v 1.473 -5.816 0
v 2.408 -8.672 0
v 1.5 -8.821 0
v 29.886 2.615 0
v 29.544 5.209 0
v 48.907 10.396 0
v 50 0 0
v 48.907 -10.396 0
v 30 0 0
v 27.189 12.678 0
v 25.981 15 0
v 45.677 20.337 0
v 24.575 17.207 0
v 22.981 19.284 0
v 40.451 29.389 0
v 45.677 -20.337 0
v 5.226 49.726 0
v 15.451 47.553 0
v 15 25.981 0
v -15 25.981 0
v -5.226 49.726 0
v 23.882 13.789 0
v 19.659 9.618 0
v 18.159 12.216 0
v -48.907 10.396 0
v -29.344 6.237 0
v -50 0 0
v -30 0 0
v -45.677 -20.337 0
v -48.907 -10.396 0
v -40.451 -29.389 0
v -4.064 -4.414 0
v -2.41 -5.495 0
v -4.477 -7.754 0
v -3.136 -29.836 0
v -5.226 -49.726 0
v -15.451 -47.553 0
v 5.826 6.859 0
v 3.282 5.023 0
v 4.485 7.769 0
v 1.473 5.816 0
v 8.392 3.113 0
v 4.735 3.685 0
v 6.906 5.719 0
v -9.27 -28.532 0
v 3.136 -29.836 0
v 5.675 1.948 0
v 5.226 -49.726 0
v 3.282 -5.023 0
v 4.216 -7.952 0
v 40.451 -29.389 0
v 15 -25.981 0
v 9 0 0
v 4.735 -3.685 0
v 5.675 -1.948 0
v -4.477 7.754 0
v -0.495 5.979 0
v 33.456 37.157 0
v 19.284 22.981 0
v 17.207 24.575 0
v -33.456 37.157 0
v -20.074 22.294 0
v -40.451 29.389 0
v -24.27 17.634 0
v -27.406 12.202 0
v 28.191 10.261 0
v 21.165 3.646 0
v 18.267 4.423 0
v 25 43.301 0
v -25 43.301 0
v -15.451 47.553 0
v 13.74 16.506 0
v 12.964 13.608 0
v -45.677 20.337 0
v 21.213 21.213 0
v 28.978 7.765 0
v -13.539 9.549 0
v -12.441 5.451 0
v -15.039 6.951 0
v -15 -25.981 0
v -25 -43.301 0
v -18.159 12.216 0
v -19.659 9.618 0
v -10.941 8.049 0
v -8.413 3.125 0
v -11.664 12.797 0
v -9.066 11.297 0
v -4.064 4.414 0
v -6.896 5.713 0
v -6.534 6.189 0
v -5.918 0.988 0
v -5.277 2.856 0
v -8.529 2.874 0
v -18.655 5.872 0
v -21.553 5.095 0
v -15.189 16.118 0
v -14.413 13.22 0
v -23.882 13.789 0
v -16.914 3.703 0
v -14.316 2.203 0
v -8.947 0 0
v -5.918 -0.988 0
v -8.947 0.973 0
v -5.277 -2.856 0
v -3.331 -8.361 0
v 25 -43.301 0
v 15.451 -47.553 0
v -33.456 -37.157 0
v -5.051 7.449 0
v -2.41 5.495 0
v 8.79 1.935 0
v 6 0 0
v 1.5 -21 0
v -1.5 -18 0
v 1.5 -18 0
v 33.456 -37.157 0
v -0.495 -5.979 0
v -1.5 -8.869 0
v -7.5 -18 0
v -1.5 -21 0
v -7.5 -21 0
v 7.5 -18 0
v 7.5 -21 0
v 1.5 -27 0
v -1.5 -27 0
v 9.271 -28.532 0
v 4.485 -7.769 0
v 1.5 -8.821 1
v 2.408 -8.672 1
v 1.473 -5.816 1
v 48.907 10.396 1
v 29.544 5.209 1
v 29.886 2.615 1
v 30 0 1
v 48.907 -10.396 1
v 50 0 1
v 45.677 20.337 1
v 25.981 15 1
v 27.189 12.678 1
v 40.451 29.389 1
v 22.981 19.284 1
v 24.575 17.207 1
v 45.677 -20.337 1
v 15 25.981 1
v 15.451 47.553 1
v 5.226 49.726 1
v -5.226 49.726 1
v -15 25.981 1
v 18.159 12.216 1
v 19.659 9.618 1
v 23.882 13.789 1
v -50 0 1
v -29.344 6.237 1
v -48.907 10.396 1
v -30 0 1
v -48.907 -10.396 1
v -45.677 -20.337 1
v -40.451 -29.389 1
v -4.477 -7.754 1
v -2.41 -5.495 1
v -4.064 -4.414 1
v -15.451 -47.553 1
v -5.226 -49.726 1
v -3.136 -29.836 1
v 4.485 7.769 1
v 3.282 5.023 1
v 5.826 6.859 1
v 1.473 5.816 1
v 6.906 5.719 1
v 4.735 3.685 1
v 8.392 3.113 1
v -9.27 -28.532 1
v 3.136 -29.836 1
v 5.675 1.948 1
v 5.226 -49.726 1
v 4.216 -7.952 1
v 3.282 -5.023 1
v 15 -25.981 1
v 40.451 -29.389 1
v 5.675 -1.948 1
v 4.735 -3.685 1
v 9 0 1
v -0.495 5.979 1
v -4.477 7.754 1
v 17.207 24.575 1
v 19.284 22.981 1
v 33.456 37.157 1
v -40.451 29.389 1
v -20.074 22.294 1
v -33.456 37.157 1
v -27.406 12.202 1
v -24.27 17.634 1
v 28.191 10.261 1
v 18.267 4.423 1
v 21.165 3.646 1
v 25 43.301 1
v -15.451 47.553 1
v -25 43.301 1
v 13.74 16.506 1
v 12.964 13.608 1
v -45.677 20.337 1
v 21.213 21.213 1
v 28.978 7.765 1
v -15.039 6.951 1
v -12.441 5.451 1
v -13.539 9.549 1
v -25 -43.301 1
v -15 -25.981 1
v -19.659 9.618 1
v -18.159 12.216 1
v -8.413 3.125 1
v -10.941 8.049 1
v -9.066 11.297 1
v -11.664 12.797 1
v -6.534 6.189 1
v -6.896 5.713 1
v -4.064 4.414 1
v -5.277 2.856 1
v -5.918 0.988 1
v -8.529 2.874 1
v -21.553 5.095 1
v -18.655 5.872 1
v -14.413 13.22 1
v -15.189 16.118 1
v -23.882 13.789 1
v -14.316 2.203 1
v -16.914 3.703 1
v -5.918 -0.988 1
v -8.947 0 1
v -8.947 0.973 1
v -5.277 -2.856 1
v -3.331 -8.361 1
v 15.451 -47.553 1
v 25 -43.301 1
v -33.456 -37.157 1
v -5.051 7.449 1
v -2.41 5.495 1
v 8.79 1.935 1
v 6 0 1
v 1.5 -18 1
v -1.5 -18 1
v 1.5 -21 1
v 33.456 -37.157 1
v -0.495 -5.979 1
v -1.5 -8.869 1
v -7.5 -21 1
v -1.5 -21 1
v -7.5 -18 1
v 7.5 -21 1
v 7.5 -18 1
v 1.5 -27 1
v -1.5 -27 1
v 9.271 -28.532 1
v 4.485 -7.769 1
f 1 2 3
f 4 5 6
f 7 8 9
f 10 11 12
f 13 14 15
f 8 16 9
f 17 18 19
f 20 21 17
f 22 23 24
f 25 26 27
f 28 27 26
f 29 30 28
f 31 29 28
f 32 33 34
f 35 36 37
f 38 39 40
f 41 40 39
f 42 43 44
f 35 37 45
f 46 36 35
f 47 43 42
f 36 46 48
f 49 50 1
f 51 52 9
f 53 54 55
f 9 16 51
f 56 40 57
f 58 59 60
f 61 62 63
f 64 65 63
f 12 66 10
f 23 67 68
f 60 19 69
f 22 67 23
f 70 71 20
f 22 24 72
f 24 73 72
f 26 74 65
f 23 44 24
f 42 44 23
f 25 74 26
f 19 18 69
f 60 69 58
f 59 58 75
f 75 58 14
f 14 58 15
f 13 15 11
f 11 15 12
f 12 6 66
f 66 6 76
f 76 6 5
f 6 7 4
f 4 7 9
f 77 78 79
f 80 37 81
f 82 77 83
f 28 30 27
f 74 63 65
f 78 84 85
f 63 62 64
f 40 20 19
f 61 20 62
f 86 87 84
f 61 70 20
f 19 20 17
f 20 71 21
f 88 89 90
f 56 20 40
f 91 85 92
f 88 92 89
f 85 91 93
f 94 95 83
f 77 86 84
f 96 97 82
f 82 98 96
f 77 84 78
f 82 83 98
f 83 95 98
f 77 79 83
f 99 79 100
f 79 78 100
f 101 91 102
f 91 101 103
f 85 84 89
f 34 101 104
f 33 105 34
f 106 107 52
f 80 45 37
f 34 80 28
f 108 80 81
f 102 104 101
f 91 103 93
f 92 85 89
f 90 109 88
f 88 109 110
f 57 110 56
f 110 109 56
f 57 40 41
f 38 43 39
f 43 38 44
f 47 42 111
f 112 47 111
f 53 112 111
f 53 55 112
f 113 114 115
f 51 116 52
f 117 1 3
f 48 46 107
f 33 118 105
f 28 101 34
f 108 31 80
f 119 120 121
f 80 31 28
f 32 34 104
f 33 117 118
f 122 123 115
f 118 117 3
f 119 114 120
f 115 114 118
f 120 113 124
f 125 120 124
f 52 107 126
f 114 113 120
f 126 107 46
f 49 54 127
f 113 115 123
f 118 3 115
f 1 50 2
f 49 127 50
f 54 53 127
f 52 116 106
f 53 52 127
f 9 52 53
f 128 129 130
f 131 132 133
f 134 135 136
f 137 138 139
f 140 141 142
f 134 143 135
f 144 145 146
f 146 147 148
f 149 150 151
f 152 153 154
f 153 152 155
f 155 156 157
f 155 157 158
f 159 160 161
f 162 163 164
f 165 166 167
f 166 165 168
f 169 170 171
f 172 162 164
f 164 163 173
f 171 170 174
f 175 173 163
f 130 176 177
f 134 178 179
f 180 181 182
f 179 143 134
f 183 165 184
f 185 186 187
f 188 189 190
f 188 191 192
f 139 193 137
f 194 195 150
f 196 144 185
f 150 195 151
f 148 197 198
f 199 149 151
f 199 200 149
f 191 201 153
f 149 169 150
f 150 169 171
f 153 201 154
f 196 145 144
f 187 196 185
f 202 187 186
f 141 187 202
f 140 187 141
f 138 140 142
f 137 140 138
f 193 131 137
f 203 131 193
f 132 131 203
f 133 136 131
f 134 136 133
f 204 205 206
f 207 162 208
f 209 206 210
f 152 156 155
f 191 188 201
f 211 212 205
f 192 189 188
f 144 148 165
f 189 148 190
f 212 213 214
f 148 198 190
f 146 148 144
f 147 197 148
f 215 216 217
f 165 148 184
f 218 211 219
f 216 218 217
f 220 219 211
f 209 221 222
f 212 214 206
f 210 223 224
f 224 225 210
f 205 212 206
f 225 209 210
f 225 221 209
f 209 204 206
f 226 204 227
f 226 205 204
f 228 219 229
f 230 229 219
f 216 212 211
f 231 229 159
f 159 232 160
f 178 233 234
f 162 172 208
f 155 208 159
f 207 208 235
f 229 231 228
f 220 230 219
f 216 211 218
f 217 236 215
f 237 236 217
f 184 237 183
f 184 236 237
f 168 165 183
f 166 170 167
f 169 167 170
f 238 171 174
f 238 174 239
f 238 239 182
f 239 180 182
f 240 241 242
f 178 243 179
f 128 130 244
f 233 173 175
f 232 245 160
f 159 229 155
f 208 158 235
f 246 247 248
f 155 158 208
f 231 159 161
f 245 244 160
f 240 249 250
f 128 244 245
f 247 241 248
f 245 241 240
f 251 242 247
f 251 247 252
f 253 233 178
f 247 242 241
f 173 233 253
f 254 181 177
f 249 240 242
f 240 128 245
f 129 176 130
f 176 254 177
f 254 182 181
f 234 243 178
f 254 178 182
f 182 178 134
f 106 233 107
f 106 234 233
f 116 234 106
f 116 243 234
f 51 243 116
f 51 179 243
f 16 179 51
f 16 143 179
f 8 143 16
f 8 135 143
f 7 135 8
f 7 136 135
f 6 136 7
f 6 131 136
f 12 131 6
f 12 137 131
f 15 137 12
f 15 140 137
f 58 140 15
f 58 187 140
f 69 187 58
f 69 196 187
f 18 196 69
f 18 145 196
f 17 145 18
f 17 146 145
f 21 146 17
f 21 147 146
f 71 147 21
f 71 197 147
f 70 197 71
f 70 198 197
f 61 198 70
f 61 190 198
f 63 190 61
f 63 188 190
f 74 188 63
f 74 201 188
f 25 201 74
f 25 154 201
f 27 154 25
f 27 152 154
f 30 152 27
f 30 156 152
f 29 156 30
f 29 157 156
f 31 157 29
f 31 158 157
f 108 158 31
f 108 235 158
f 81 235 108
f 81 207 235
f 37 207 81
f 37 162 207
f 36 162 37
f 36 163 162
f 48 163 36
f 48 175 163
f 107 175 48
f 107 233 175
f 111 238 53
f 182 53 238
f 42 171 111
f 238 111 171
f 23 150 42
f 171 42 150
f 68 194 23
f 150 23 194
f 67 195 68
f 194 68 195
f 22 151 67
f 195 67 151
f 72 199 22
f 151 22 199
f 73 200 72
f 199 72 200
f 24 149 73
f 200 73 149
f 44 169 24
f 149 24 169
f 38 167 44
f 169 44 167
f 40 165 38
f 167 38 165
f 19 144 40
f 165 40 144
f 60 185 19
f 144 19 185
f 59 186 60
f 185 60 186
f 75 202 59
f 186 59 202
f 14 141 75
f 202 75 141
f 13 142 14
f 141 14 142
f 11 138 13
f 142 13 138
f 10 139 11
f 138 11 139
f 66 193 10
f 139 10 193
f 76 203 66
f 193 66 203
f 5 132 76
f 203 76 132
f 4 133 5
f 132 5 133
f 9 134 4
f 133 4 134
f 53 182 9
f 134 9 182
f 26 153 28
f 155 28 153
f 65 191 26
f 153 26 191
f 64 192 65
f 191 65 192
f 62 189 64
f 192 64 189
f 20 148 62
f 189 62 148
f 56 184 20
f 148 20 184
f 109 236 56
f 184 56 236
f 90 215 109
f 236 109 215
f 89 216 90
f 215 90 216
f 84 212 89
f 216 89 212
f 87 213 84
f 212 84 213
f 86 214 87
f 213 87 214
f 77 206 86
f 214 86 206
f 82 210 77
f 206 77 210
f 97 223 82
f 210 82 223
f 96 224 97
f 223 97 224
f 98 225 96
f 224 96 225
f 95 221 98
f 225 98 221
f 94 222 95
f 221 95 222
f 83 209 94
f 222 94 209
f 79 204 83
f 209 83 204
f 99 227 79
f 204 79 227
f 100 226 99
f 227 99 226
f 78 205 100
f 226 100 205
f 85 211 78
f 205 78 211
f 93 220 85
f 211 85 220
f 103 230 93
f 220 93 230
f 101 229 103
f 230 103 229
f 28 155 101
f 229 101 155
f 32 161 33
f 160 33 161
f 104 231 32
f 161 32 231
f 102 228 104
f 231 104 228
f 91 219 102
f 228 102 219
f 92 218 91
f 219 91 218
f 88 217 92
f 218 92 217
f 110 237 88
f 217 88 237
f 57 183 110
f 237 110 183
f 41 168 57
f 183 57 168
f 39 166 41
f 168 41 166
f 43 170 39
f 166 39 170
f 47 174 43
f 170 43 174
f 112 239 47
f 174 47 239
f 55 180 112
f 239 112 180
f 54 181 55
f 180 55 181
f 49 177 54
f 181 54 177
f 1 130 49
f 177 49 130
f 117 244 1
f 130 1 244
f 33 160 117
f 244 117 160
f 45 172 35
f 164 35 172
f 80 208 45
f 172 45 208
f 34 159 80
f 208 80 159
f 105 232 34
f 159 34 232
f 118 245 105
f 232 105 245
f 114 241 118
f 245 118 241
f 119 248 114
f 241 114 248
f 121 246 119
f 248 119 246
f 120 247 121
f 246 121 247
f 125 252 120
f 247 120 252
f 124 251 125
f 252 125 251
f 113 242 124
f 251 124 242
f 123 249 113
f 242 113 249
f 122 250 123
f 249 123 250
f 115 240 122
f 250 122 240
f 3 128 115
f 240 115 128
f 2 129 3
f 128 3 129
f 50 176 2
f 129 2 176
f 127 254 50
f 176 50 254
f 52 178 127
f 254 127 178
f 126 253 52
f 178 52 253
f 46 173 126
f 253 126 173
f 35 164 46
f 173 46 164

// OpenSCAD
// reference: https://twitter.com/estelliaslair/status/1107808592927678464

module pie_slice(r, $fa=$fa) {
   intersection() {
       circle(r=r, $fa=$fa);
       translate([-r, 0]) square([2*r, r]);
       rotate(-120) translate([-r, 0]) square([2*r, r]);
   }
}

module trefoil(r) {
    union() {
        difference() {
            union() {
                pie_slice(r, $fa=5);
                rotate(120) pie_slice(r);
                rotate(-120) pie_slice(r);
            }
            circle(r=r*0.3);
        }
        circle(r=r*0.2);
    }
}

module trans(r) {
    difference() {
        circle(r=r*0.3);
        circle(r=r*0.2);
    }
    rotate(-90) translate([r*0.25, -r*0.05]) square([r*0.65, r*0.1]);
    rotate(30) translate([r*0.25, -r*0.05]) square([r*0.6, r*0.1]);
    rotate(150) translate([r*0.25, -r*0.05]) square([r*0.6, r*0.1]);
    translate([0, -r*0.65]) square([r*0.5, r*0.1], center=true);
    rotate(-15) translate([r*0.30, r*0.30]) difference() {
        square(r*0.35);
        translate([-r*0.1, -r*0.1]) square(r*0.35);
    }
    rotate(-15+120) translate([r*0.35, r*0.35]) difference() {
        square(r*0.3);
        translate([-r*0.1, -r*0.1]) square(r*0.3);
    }
    rotate(60) translate([0, r*0.5]) square([r*0.35, r*0.1], center=true);
}

module model() {
    linear_extrude(1) difference() {
    circle(50, center=true);
        difference() {
            trefoil(r=30);
            trans(r=30);
        }
    }
}

model();
